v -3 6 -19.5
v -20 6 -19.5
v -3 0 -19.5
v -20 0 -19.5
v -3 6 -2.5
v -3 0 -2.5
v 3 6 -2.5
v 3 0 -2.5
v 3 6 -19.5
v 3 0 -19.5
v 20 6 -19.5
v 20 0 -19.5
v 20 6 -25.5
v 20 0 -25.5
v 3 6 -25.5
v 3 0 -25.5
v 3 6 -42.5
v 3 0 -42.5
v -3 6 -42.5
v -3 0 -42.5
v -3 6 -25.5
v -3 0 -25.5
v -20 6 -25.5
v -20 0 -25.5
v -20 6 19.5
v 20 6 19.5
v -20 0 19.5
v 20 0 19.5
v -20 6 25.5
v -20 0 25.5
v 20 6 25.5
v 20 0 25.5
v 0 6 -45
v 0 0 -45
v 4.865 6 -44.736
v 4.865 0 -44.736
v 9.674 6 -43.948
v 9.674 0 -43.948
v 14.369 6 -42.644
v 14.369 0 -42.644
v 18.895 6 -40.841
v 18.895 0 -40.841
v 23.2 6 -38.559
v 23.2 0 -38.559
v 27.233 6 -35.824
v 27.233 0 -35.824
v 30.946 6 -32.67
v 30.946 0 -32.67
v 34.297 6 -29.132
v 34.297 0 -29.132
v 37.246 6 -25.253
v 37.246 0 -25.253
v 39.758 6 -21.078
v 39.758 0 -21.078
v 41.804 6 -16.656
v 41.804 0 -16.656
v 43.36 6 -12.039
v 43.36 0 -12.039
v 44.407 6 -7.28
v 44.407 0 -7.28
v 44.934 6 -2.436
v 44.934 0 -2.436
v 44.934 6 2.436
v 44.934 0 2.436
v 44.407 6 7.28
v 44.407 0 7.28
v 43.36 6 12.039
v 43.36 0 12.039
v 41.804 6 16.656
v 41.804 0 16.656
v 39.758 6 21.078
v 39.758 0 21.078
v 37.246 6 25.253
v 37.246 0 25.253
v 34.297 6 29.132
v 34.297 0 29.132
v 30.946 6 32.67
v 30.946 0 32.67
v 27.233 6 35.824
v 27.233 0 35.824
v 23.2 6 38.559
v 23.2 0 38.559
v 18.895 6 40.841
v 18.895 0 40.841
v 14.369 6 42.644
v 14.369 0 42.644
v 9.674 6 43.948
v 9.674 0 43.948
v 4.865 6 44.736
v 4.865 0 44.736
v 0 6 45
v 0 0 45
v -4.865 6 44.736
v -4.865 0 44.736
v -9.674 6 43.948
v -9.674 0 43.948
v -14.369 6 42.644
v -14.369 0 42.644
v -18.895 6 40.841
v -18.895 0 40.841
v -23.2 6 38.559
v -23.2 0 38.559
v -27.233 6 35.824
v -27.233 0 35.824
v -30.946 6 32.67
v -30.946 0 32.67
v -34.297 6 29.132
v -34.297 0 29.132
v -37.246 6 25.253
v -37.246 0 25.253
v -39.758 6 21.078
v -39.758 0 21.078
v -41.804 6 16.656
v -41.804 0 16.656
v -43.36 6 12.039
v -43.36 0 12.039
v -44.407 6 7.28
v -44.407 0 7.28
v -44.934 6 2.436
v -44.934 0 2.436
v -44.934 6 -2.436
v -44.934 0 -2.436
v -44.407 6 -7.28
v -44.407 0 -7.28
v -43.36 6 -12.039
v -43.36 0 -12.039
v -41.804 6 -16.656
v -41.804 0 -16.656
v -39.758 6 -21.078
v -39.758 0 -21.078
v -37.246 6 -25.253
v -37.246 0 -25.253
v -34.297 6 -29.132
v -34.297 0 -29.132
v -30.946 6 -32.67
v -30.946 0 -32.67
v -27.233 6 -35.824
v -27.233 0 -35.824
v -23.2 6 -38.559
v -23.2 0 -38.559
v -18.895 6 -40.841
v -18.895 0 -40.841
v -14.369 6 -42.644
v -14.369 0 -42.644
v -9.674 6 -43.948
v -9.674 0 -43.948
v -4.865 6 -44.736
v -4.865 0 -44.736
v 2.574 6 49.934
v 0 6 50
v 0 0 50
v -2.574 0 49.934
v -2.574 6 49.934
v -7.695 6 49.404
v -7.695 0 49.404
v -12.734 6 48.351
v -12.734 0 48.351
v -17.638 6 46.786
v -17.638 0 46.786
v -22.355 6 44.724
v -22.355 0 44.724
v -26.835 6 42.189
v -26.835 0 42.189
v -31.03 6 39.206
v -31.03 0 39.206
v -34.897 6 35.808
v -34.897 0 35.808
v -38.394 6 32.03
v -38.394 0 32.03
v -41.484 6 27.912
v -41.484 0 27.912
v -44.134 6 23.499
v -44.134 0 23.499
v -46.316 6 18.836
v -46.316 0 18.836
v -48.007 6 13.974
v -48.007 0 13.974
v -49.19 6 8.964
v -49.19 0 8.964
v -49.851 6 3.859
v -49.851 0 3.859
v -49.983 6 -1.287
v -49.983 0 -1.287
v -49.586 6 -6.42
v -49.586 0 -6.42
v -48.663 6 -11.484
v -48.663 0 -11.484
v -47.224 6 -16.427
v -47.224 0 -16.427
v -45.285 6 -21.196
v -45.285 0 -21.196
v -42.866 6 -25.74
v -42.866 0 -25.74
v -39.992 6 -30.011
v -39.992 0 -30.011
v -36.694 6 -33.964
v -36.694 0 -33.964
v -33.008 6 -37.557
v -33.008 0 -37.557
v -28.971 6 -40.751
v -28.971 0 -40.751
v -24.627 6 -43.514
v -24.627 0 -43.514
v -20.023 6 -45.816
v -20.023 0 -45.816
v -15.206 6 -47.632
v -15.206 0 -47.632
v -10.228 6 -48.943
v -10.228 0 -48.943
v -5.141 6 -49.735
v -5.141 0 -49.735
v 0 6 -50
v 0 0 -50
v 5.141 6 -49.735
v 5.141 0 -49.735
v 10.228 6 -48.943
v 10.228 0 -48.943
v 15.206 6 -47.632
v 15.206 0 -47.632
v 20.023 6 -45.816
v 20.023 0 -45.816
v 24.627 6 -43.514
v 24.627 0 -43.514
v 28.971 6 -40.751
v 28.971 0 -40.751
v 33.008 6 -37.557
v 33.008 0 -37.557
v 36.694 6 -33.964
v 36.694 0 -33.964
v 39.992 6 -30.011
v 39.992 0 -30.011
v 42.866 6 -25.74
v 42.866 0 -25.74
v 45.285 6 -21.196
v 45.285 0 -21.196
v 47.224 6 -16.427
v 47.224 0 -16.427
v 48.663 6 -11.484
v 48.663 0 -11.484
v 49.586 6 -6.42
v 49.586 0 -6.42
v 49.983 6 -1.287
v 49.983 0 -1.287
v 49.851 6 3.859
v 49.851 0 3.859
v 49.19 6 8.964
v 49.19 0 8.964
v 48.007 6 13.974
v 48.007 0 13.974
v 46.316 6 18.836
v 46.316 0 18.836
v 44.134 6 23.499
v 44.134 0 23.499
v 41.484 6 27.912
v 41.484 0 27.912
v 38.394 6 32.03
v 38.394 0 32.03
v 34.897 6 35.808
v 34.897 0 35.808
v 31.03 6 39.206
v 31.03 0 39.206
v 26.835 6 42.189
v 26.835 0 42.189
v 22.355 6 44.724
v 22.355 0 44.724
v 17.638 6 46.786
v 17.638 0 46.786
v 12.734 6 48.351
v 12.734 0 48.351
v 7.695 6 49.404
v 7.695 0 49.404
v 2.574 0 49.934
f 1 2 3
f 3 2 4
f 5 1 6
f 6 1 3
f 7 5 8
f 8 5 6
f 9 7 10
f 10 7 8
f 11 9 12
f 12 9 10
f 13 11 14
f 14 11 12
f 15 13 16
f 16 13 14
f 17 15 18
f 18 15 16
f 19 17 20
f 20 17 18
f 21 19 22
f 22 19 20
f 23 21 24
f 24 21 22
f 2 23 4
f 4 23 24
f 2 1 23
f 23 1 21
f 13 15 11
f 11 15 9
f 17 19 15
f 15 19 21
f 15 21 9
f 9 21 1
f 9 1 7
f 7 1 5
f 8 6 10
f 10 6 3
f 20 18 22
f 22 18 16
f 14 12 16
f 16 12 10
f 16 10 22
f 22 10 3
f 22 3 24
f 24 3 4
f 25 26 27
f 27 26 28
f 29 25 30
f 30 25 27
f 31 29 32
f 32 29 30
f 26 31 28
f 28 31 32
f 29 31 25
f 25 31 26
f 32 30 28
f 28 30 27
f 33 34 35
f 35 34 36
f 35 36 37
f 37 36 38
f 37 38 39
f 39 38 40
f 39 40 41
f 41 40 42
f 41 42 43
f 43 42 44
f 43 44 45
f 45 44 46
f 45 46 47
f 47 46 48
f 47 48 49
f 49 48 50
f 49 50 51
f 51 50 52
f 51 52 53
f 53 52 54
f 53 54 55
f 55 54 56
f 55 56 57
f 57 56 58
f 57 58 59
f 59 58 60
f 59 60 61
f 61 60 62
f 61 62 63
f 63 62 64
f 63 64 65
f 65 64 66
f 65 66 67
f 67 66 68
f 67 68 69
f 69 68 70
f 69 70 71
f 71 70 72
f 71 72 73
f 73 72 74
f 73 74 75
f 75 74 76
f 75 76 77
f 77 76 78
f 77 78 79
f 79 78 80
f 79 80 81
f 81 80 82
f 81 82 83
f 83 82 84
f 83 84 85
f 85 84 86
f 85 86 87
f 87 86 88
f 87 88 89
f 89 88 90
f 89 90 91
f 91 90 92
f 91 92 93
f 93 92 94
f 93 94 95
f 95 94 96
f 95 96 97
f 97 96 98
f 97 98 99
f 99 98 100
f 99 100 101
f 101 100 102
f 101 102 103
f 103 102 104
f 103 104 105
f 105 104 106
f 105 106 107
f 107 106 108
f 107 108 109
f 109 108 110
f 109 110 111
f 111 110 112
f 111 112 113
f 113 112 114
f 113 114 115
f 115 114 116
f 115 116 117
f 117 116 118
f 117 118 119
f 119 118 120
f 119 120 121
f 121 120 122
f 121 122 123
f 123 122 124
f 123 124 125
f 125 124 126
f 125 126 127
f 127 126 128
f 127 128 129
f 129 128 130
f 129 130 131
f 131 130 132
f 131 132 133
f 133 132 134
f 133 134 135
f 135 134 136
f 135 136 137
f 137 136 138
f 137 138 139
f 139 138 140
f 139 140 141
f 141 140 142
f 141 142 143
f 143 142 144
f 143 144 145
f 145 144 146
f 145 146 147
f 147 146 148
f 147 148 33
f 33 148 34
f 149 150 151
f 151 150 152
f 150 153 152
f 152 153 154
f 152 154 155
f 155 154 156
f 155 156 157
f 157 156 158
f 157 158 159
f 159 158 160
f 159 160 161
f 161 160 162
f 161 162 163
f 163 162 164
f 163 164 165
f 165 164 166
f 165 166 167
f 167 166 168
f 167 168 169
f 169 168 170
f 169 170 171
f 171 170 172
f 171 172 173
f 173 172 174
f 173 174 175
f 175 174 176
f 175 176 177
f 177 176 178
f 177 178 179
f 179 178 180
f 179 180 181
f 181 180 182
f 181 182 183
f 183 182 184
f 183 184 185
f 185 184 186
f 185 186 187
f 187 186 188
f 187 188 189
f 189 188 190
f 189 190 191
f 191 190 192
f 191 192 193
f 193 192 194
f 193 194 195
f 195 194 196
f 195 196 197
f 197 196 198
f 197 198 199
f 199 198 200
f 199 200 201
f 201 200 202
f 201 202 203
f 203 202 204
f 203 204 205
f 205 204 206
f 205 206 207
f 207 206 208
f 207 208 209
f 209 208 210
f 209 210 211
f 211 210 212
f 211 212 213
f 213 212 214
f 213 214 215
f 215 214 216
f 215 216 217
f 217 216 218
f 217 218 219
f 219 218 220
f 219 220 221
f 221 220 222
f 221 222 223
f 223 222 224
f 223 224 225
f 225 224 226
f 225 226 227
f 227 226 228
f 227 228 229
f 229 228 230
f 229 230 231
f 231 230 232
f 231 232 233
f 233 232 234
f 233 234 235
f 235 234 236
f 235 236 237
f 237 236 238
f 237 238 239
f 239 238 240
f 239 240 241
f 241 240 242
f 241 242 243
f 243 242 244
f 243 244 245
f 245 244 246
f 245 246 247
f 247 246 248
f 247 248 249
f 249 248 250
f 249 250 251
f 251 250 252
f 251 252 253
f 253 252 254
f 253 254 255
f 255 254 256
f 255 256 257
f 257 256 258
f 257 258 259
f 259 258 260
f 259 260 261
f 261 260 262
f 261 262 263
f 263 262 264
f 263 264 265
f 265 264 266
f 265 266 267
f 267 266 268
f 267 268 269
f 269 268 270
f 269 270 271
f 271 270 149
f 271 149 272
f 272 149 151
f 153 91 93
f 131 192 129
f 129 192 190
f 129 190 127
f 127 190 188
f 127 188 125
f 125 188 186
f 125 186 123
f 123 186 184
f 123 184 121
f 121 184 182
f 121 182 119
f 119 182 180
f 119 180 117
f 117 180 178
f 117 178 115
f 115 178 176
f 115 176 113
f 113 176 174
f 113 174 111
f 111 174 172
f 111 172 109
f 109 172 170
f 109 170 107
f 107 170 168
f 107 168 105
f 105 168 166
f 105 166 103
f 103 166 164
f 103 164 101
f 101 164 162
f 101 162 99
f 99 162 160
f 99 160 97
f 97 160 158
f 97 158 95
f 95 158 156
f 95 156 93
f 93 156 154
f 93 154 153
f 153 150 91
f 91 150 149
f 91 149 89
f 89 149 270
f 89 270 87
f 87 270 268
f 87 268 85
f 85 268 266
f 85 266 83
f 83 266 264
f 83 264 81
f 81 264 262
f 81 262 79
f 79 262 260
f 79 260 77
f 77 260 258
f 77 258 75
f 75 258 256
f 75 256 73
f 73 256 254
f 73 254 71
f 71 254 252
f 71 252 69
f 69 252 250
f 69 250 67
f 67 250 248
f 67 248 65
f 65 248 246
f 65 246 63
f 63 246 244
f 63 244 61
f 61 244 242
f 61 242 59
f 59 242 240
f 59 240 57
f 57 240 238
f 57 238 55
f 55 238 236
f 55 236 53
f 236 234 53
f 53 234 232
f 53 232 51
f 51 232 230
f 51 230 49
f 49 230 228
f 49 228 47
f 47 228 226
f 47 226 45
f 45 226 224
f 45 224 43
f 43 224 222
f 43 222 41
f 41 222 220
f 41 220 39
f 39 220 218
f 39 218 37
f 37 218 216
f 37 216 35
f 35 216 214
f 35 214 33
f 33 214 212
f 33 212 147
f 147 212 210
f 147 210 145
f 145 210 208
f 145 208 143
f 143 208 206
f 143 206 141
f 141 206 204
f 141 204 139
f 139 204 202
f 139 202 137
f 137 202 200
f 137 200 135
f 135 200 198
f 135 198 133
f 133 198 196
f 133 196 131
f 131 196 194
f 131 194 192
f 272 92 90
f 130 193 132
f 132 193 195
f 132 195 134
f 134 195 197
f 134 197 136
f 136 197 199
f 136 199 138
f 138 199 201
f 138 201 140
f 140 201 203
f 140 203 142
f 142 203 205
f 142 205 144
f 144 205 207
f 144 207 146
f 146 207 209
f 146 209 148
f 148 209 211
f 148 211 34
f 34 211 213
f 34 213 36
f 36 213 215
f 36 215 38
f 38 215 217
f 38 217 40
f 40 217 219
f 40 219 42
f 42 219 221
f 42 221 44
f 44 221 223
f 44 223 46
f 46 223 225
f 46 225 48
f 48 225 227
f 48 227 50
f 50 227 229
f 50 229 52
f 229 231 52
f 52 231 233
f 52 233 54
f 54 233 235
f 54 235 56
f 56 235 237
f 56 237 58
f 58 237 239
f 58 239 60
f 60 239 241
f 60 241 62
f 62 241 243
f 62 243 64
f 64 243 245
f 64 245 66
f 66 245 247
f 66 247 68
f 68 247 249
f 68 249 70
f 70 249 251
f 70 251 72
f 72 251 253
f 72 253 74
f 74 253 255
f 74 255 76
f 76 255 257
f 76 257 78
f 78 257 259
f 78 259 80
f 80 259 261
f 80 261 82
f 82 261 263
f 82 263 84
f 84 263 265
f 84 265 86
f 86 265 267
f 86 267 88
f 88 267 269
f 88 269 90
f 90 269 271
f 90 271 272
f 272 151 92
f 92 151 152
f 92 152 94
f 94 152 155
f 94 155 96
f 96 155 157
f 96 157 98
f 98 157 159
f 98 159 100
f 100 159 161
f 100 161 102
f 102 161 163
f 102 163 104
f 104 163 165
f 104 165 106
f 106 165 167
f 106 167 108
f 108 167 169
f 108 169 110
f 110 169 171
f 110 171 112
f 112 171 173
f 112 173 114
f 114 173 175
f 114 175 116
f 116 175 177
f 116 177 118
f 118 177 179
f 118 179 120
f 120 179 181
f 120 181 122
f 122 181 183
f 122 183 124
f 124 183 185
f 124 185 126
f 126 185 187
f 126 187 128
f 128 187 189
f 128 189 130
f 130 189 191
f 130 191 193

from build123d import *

# Parameters (mm, degrees)
SKETCH1_R           = 50
SKETCH1_R_2         = 45
BOSS_EXTRUDE2_DEPTH = 6


with BuildPart() as part:
    # Sketch1 → Boss-Extrude2 (new body)
    with BuildSketch(Plane(origin=(0, 0, 0), x_dir=(1, 0, 0), z_dir=(0, 1, 0))):
        Circle(SKETCH1_R)
        Circle(SKETCH1_R_2, mode=Mode.SUBTRACT)
        Polygon((0, -19.5), (20, -19.5), (20, -25.5), (0, -25.5), (-20, -25.5), (-20, -19.5), align=None)
        Polygon((20, 25.5), (20, 19.5), (0, 19.5), (-20, 19.5), (-20, 25.5), (0, 25.5), align=None)
        Polygon((-3, 2.5), (3, 2.5), (3, 22.5), (3, 42.5), (-3, 42.5), (-3, 22.5), align=None)
    extrude(amount=BOSS_EXTRUDE2_DEPTH)


solid = part.part
